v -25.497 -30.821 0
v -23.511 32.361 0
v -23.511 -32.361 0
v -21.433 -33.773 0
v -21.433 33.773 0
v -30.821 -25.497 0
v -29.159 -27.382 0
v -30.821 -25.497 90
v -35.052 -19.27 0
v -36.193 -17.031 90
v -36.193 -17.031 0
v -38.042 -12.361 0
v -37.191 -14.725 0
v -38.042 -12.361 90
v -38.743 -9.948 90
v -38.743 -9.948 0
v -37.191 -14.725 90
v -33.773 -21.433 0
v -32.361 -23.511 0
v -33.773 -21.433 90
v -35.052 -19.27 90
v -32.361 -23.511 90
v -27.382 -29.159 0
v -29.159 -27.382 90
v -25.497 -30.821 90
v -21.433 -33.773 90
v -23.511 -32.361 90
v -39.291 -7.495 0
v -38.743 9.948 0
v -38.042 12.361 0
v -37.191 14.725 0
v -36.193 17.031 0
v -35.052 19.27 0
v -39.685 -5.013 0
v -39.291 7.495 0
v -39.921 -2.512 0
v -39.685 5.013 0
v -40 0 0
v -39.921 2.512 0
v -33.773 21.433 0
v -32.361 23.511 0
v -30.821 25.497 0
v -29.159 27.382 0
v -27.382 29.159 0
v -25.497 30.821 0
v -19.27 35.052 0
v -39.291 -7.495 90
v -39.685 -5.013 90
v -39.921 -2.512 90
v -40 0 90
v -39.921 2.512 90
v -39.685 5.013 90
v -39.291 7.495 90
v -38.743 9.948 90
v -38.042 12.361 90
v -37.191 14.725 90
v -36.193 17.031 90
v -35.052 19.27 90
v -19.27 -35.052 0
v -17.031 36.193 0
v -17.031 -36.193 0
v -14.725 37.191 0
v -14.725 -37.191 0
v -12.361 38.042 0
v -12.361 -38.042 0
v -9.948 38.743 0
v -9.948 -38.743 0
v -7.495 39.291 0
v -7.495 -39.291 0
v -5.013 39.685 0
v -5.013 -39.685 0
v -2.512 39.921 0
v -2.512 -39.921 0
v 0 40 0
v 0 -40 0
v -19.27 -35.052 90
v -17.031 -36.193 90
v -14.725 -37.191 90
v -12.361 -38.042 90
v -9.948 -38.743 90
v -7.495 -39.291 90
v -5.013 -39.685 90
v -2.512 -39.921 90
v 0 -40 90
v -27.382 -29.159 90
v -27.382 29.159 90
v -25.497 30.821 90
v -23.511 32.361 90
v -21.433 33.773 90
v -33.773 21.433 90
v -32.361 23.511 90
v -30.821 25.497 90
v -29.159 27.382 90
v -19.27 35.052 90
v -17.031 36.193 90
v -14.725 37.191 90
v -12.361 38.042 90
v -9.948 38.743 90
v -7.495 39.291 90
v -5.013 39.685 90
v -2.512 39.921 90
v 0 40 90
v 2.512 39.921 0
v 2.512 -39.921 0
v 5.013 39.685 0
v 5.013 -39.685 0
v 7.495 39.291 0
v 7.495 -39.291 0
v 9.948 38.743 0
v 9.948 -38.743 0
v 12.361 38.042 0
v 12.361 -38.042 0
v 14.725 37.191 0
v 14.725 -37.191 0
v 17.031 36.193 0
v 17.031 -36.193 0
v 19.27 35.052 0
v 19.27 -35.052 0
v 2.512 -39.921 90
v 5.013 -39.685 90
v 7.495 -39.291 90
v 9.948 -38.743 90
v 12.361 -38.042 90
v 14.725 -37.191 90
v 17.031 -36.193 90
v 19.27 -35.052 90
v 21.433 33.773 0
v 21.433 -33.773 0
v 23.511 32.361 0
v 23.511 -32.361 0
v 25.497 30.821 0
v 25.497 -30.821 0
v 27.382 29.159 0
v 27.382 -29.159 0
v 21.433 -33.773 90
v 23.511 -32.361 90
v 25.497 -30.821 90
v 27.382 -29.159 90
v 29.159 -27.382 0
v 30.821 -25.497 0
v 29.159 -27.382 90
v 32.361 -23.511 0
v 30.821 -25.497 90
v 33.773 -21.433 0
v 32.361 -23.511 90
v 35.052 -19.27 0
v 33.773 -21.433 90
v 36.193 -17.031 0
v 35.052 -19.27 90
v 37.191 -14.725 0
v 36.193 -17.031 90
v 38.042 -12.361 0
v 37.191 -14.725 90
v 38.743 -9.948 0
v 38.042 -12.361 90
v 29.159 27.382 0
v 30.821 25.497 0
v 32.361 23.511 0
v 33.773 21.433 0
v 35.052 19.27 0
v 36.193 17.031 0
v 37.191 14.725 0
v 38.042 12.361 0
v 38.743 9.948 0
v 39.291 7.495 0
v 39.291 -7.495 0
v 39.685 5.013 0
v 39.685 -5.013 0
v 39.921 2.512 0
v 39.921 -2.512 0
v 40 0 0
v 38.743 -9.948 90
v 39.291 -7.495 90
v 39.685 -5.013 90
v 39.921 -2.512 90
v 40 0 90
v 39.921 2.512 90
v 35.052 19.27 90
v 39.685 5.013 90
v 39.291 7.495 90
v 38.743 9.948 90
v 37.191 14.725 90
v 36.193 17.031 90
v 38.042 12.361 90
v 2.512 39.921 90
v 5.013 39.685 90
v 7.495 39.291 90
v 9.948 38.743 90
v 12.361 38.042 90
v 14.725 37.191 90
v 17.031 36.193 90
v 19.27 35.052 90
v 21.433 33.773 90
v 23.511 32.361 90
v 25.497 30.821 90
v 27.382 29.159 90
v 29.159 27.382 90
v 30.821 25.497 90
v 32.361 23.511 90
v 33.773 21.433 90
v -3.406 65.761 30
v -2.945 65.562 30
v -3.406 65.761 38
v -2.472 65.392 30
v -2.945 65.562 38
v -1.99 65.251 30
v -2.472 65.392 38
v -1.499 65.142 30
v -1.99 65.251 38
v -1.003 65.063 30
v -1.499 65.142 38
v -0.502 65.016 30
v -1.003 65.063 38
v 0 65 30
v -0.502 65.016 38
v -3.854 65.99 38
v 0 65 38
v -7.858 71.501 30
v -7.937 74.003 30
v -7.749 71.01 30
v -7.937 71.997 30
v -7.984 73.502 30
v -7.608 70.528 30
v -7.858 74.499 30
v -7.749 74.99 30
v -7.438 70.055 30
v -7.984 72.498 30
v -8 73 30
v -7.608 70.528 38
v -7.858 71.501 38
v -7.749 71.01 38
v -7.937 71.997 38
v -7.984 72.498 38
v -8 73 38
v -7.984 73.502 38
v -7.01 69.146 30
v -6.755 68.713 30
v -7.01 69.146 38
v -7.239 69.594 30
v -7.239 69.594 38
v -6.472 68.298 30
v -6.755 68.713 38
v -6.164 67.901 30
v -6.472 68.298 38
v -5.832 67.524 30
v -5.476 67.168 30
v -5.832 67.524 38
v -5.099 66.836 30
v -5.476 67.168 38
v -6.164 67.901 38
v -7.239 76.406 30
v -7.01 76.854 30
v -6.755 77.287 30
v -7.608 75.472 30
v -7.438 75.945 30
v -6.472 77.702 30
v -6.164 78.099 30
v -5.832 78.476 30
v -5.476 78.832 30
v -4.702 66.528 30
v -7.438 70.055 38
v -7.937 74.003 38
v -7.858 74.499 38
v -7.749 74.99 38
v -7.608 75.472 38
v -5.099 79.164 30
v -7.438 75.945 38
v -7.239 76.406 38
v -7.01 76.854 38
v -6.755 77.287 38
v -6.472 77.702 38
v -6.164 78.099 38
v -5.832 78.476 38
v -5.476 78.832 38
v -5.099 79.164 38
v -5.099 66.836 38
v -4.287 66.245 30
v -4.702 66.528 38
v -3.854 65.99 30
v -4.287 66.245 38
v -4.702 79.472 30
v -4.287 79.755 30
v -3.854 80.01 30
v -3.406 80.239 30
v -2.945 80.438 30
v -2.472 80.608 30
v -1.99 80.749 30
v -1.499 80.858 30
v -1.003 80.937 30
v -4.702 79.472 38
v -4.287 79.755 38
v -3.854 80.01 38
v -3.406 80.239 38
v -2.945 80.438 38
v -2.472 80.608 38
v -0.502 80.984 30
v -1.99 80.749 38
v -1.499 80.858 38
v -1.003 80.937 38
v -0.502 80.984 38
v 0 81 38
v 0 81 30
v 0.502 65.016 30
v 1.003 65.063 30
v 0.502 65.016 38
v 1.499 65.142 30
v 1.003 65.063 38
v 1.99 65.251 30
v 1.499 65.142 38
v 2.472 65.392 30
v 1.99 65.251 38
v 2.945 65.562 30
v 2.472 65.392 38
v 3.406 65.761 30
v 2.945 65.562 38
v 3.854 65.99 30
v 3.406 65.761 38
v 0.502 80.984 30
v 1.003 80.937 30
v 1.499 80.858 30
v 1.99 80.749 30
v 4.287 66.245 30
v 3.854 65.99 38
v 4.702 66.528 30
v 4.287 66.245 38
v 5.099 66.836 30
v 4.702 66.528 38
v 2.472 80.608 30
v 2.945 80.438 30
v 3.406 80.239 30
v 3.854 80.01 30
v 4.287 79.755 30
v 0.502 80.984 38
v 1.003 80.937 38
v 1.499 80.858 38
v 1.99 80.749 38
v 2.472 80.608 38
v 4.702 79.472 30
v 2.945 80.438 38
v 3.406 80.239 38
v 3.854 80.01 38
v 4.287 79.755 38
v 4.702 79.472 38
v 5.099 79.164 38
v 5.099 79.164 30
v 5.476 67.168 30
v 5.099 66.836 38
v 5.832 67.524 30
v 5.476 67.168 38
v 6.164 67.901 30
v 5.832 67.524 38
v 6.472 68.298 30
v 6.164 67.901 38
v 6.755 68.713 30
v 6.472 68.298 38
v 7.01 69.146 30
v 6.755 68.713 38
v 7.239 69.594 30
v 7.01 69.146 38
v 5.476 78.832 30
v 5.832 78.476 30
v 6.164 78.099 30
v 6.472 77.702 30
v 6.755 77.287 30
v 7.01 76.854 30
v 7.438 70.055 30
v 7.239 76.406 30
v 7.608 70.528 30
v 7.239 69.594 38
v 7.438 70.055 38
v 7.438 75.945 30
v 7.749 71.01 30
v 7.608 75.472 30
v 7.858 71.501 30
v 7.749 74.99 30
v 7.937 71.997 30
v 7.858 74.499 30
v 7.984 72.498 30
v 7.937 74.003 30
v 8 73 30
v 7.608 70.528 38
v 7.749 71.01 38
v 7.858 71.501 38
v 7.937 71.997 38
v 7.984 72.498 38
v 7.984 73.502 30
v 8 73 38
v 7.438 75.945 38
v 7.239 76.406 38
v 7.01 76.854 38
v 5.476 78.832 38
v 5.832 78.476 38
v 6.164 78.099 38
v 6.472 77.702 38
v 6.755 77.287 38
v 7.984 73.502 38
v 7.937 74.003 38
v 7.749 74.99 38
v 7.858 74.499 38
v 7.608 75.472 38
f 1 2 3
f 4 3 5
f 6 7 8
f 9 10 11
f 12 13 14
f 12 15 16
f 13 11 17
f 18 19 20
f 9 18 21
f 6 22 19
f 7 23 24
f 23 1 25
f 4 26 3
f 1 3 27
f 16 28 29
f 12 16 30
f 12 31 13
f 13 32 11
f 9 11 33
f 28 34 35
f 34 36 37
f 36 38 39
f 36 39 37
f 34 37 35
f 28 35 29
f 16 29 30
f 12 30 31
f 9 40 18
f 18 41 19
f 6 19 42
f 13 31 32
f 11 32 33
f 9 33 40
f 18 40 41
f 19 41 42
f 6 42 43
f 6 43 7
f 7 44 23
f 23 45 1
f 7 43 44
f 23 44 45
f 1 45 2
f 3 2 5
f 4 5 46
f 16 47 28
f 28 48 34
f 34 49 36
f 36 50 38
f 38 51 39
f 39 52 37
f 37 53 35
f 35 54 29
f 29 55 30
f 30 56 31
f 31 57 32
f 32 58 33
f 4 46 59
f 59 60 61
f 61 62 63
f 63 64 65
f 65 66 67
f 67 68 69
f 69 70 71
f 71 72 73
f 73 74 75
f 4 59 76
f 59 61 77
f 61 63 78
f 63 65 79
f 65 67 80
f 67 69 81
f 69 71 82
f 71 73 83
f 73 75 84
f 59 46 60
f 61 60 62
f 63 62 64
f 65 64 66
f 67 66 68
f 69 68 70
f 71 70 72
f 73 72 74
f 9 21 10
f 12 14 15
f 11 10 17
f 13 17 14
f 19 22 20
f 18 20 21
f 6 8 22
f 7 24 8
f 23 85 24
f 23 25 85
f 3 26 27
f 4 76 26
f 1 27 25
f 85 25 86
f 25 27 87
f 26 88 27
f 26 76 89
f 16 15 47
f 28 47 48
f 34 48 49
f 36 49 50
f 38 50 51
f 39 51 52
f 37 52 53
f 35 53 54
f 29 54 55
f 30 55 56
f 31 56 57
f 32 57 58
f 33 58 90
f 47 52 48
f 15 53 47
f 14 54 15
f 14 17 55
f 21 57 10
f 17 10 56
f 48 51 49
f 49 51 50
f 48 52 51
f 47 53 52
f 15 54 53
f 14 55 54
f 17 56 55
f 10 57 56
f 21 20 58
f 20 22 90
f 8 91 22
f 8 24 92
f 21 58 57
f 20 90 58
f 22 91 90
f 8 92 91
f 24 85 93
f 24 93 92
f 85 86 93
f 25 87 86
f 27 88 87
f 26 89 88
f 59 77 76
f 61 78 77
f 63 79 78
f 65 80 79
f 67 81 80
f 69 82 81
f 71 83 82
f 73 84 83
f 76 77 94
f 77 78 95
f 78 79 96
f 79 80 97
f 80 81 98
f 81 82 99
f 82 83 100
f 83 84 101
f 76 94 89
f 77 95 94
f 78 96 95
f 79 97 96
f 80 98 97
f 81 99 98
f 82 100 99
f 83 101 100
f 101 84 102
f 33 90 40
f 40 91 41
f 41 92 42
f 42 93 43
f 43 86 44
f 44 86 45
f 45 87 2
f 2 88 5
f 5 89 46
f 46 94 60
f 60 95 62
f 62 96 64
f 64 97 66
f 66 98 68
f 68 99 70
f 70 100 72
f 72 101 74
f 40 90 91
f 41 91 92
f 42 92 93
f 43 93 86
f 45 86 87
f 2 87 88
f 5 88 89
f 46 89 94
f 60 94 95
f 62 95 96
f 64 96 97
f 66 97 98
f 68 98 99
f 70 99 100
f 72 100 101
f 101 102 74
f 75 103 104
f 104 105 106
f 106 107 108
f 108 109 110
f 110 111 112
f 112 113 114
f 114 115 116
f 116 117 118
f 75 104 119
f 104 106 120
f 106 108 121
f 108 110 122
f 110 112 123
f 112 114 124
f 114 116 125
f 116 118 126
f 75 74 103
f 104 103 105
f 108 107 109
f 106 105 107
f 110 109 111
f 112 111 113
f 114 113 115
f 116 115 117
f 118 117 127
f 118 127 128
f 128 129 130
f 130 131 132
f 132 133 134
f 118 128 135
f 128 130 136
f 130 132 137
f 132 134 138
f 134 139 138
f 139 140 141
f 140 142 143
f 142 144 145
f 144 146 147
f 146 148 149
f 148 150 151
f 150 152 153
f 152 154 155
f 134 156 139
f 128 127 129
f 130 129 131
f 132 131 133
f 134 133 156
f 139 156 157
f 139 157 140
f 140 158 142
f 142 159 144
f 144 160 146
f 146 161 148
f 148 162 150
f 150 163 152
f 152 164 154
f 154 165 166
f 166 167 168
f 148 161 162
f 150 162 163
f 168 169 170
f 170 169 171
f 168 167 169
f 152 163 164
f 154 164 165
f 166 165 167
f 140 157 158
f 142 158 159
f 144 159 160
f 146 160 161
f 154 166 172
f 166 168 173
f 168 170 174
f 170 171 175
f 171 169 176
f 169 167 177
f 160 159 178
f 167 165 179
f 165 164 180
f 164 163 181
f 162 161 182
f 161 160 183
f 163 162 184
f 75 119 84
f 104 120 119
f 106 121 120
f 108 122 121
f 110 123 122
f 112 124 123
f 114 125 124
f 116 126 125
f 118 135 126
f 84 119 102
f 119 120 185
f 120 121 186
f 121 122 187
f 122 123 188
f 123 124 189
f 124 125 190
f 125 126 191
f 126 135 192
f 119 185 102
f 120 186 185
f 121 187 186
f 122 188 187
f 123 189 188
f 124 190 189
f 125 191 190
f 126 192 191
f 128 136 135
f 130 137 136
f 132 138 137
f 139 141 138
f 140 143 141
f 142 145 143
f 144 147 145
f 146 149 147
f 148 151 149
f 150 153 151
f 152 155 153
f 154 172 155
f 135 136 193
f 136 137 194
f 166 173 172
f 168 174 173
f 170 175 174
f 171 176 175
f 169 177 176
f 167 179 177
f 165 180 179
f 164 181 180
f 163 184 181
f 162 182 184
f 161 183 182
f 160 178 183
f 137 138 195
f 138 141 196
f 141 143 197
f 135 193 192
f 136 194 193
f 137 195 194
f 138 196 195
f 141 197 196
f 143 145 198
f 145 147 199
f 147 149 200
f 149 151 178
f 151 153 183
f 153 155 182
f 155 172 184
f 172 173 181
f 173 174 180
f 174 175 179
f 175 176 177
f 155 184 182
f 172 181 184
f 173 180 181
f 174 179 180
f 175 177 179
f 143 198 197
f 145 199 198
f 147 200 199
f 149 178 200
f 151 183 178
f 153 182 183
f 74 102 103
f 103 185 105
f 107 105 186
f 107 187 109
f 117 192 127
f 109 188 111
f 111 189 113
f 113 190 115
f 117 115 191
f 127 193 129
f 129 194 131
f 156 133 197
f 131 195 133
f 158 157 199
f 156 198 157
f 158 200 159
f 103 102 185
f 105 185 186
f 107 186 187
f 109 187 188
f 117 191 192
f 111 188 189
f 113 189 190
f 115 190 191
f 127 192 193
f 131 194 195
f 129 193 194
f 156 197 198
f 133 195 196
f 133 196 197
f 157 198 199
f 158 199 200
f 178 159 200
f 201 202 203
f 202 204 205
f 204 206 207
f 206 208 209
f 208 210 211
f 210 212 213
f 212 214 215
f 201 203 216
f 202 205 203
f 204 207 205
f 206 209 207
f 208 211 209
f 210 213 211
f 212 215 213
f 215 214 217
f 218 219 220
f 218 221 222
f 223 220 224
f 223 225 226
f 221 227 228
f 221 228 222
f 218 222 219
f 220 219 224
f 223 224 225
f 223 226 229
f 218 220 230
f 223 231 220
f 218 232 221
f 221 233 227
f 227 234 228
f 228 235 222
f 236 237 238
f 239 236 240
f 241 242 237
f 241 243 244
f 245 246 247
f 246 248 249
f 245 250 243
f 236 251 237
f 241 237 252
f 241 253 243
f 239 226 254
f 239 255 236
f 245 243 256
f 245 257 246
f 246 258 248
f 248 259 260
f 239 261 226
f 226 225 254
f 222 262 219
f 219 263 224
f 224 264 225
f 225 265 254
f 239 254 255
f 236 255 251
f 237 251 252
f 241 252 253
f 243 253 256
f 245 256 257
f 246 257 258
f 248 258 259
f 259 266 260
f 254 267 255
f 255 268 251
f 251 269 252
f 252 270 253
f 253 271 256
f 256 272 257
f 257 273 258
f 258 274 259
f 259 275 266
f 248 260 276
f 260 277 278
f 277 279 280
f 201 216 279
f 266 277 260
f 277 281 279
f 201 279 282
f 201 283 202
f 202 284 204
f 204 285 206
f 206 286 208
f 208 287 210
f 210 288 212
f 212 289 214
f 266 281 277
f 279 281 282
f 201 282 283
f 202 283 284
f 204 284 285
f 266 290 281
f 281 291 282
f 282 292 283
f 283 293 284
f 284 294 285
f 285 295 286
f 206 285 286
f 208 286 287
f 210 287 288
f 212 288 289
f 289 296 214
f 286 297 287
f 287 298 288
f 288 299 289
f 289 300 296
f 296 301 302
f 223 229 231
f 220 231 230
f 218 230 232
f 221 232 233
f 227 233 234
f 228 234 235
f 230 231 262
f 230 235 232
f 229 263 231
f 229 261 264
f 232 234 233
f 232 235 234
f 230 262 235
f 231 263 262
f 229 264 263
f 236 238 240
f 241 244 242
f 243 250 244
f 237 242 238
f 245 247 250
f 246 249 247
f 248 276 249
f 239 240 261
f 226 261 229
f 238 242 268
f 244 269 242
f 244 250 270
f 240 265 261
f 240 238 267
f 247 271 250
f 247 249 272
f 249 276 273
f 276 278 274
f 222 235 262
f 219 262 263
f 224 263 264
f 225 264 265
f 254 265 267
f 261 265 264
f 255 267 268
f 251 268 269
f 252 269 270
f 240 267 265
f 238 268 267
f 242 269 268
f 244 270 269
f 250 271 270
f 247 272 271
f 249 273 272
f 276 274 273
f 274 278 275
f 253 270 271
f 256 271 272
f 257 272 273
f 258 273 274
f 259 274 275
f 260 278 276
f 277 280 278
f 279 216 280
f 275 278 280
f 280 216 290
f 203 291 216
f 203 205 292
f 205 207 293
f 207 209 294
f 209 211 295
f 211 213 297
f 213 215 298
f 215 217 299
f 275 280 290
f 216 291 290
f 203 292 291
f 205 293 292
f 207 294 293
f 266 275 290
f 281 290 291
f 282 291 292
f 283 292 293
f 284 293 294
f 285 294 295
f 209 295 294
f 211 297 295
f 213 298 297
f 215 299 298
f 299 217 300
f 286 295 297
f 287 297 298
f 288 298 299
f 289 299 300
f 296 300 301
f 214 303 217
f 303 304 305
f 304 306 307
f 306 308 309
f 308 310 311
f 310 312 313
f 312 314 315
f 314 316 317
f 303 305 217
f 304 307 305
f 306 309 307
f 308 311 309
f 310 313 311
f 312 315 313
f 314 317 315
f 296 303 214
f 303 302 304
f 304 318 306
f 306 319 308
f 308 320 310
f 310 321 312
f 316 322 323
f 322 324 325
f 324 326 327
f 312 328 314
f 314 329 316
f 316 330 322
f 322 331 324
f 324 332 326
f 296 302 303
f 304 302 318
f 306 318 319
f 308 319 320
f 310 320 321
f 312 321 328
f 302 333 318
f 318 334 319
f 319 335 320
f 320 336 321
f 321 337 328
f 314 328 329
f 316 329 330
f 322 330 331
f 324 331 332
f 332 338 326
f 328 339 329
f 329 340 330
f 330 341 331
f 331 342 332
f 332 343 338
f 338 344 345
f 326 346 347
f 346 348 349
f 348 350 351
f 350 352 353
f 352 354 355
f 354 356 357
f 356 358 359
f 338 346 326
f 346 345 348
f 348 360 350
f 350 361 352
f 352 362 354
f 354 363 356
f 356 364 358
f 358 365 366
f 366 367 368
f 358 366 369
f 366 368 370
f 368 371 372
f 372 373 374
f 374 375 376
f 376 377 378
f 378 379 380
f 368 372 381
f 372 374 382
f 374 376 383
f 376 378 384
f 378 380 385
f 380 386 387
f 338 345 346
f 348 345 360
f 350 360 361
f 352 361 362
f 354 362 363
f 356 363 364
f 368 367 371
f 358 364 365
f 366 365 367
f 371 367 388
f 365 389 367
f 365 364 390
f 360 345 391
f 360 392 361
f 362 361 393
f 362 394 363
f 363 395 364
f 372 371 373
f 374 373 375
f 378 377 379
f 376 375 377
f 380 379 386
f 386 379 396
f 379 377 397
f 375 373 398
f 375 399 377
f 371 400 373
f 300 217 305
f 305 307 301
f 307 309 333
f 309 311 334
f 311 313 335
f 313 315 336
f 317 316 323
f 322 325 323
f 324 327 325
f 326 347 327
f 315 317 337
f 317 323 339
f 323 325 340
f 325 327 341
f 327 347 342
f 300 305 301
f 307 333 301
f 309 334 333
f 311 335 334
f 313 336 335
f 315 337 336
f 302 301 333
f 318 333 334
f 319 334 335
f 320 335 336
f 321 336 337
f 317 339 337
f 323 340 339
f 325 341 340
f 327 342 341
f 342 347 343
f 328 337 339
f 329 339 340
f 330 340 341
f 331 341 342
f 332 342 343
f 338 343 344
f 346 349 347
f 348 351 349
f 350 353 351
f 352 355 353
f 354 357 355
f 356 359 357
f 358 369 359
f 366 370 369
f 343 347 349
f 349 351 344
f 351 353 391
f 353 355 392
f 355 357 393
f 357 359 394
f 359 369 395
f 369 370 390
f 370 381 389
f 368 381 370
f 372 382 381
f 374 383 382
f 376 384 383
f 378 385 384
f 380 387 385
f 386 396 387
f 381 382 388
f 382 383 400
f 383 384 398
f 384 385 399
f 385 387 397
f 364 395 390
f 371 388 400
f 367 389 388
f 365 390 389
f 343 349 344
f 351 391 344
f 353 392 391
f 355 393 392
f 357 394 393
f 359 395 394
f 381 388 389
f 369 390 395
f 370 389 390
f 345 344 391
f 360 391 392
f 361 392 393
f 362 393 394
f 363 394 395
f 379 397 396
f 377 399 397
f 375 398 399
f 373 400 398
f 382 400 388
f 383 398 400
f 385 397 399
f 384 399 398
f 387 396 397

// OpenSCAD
// マグカップ本体とハンドル
$fn = 100;

// パラメータ
outer_d = 80;
inner_d = 70;
height_body = 90;
thickness_bottom = 6;
handle_gap_w = 25;    // 指入れ幅
handle_gap_h = 30;    // 指入れ高さ
handle_th = 8;        // 取手肉厚
handle_zpos = (height_body - handle_gap_h) / 2;  // 取手の底面Z位置
handle_center_x = outer_d/2 + handle_gap_w + handle_th; // 半円中心X

union() {
  // 本体外側
  cylinder(d = outer_d, h = height_body);
  // 飲み物入る中空部 (底厚みを残して上部をくり抜き)
  translate([0, 0, thickness_bottom])
    cylinder(d = inner_d, h = height_body - thickness_bottom);

  // 取手（D字形、Z方向に厚みを持たせる）
  translate([0, 0, handle_zpos]) rotate([0, 0, 90])  // Z方向が高さ
    linear_extrude(height = handle_th) {
      // 2次元断面：半円と角矩形の交差でD字型
      intersection() {
        // 外側半円
        translate([handle_center_x, 0])
          circle(r = handle_th, $fn = 100);
        // 高さ制限
        translate([handle_center_x-handle_th, -handle_gap_h/2])
          square([handle_th*2, handle_gap_h]);
      }
    }
}
